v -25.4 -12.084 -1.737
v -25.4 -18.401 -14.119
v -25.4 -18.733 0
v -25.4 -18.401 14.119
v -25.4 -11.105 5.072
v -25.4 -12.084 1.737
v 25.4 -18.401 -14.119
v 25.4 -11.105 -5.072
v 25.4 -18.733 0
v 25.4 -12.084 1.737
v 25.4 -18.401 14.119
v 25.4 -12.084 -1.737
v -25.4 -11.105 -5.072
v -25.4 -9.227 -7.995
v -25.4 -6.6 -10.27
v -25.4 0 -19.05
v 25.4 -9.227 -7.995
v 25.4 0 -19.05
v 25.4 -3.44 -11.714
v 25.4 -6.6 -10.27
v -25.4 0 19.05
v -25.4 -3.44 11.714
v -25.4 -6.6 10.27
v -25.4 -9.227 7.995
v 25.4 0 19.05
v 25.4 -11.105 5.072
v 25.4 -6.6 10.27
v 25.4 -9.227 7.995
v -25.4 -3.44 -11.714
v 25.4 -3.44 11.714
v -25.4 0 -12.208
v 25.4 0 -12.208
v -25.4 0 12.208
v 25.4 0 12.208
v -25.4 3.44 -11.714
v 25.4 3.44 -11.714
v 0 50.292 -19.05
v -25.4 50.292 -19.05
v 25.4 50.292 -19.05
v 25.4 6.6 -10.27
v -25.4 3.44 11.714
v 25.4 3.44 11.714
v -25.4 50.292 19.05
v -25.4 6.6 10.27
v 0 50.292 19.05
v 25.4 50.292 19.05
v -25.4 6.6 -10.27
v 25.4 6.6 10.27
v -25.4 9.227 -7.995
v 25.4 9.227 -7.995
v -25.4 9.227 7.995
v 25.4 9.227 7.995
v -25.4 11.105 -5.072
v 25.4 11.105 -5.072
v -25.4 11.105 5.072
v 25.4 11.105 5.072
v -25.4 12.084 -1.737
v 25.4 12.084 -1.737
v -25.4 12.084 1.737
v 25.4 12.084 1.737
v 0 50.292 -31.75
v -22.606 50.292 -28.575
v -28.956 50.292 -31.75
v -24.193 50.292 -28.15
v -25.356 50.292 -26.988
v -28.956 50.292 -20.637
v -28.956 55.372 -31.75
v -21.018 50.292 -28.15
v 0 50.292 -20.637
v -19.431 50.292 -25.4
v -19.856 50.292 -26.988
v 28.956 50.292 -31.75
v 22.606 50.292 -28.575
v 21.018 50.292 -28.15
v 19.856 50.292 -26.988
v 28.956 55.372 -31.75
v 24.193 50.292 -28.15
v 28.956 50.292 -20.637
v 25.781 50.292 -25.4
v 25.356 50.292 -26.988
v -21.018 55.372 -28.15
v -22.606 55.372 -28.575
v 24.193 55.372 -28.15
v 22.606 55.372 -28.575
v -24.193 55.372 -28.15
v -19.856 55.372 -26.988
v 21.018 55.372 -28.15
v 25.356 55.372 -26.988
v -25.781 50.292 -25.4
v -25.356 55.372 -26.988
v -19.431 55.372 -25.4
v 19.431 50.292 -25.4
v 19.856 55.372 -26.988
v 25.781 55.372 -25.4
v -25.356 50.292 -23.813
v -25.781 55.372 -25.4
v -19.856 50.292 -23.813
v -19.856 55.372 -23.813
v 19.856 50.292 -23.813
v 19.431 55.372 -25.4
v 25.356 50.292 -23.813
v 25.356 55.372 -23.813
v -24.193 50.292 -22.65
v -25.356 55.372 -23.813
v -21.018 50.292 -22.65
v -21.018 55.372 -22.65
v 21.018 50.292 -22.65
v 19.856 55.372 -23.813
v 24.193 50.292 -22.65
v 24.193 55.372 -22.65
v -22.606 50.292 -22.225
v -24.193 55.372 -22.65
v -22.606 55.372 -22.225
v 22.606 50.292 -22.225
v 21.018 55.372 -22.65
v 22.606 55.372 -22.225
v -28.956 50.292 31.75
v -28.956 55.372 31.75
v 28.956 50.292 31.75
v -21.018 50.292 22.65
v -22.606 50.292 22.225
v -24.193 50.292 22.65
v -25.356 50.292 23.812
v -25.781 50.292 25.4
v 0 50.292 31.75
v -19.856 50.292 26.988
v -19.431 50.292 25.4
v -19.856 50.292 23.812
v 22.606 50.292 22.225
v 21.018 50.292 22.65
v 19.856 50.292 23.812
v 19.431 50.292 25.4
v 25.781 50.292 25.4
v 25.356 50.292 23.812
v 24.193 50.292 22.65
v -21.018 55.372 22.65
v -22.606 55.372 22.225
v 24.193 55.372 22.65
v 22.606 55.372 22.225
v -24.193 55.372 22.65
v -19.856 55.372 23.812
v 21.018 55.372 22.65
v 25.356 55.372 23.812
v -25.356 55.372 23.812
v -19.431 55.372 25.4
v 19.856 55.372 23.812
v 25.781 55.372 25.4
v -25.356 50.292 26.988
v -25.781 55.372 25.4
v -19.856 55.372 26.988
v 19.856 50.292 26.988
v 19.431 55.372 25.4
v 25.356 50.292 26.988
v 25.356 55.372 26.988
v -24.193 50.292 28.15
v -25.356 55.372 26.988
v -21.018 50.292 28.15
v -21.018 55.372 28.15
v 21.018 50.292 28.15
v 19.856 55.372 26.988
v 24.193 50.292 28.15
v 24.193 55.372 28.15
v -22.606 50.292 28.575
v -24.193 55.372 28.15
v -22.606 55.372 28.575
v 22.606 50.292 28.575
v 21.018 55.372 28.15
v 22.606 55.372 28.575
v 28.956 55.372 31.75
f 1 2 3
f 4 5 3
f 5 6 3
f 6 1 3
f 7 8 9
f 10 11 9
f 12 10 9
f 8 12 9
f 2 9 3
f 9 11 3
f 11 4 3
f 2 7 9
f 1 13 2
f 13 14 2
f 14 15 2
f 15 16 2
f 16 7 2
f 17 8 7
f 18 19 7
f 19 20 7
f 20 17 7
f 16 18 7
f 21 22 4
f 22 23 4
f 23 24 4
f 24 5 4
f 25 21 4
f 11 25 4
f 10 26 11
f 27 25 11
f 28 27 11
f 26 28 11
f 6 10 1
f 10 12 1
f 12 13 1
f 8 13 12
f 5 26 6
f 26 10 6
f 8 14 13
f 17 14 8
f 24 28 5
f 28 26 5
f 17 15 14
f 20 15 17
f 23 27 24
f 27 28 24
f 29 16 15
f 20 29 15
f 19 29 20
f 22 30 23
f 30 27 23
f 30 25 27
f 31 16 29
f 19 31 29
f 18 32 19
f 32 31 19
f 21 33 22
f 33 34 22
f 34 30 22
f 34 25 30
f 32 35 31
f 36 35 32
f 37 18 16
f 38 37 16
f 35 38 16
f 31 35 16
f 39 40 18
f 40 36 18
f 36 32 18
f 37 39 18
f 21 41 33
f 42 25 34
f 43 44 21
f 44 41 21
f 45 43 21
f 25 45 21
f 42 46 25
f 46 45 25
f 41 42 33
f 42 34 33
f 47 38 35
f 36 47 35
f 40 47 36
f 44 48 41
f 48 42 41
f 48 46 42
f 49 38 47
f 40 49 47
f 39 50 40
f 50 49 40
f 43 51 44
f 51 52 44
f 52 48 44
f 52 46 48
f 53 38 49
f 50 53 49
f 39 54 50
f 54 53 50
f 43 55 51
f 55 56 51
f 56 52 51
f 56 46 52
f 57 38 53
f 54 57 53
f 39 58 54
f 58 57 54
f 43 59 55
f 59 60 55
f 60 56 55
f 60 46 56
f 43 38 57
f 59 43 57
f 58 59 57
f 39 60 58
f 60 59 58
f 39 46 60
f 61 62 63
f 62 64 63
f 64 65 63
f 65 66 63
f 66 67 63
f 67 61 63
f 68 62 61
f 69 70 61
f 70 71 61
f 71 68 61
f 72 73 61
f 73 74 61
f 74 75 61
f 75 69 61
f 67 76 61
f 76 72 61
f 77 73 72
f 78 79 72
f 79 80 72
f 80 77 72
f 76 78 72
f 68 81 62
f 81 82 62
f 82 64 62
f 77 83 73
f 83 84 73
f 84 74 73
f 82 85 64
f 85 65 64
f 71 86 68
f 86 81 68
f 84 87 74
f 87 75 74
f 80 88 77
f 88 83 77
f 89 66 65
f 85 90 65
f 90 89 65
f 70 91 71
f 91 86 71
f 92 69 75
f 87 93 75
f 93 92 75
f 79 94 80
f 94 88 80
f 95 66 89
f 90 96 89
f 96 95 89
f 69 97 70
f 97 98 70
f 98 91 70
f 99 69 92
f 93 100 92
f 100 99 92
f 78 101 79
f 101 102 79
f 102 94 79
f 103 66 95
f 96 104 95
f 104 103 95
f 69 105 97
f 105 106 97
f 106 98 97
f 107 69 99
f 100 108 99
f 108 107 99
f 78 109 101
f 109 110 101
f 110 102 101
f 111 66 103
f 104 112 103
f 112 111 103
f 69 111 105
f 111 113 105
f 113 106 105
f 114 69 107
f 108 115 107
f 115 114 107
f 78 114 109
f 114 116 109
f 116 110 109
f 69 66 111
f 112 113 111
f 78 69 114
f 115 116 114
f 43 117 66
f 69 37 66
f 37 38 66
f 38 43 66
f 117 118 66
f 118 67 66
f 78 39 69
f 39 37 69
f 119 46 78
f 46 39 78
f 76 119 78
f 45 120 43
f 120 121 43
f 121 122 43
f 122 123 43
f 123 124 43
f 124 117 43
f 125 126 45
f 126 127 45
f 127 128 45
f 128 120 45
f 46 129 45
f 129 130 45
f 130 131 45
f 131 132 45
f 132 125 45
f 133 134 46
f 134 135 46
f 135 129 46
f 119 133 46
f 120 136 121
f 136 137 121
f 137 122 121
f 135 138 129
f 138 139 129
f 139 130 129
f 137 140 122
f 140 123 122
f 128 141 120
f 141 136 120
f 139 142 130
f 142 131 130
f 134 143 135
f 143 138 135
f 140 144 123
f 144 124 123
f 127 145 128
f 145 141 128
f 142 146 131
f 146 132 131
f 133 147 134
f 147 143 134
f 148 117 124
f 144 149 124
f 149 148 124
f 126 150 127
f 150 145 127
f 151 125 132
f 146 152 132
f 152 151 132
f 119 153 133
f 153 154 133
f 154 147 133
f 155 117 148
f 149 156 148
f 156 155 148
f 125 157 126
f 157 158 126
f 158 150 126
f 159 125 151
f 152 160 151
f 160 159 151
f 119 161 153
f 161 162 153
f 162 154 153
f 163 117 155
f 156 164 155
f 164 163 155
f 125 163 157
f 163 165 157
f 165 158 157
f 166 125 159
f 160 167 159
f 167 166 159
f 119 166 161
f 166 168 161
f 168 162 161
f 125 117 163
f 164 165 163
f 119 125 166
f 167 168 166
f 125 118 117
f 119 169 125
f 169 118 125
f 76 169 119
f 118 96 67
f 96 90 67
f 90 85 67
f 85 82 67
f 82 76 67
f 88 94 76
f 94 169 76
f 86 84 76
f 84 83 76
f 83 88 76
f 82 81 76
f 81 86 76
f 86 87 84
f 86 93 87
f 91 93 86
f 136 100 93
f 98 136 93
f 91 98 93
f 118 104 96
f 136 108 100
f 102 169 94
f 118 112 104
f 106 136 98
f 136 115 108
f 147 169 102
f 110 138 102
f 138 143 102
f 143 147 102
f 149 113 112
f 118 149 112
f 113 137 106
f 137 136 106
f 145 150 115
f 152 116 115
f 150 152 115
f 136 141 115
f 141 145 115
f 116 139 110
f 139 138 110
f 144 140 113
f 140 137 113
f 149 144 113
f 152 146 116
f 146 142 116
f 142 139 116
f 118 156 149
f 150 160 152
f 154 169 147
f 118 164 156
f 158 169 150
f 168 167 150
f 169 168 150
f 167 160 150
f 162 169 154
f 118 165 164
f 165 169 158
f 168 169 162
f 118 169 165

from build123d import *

# Parameters (mm, degrees)
SKETCH1_W           = 50.8
SKETCH1_H           = 38.1
BOSS_EXTRUDE1_DEPTH = 50.292
BOSS_EXTRUDE2_DEPTH = 50.8
SKETCH3_R           = 12.1
CUT_EXTRUDE1_DEPTH  = 127
SKETCH4_W           = 57.912
SKETCH4_H           = 63.5
BOSS_EXTRUDE3_DEPTH = 5.08
SKETCH5_R           = 3.175
CUT_EXTRUDE2_DEPTH  = 5.08


with BuildPart() as part:
    # Sketch1 → Boss-Extrude1 (new body)
    with BuildSketch(Plane(origin=(0, 0, 0), x_dir=(1, 0, 0), z_dir=(0, 1, 0))):
        Rectangle(SKETCH1_W, SKETCH1_H)
    extrude(amount=BOSS_EXTRUDE1_DEPTH)

    # Sketch2 → Boss-Extrude2 (add)
    with BuildSketch(Plane(origin=(25.4, 0, 0), x_dir=(0, 0, -1), z_dir=(1, 0, 0))):
        with BuildLine():
            Line((-19.05, 0), (-14.119497191, -18.400886991))
            ThreePointArc((-14.119497191, -18.400886991), (0, -18.733351542), (14.119497191, -18.400886991))
            Line((14.119497191, -18.400886991), (19.05, 0))
            Line((19.05, 0), (-19.05, 0))
        make_face()
    extrude(amount=-BOSS_EXTRUDE2_DEPTH)

    # Sketch3 → Cut-Extrude1 (cut)
    with BuildSketch(Plane(origin=(25.4, 0, 0), x_dir=(0, 0, -1), z_dir=(1, 0, 0))):
        Circle(SKETCH3_R)
    extrude(amount=-CUT_EXTRUDE1_DEPTH, mode=Mode.SUBTRACT)

    # Sketch4 → Boss-Extrude3 (add)
    with BuildSketch(Plane(origin=(0, 50.292, 0), x_dir=(1, 0, 0), z_dir=(0, 1, 0))):
        Rectangle(SKETCH4_W, SKETCH4_H)
    extrude(amount=BOSS_EXTRUDE3_DEPTH)

    # Sketch5 → Cut-Extrude2 (cut)
    with BuildSketch(Plane(origin=(0, 55.372, 0), x_dir=(1, 0, 0), z_dir=(0, 1, 0))):
        with Locations((-22.606, 25.4)):
            Circle(SKETCH5_R)
        with Locations((-22.606, -25.4)):
            Circle(SKETCH5_R)
        with Locations((22.606, 25.4)):
            Circle(SKETCH5_R)
        with Locations((22.606, -25.4)):
            Circle(SKETCH5_R)
    extrude(amount=-CUT_EXTRUDE2_DEPTH, mode=Mode.SUBTRACT)


solid = part.part
